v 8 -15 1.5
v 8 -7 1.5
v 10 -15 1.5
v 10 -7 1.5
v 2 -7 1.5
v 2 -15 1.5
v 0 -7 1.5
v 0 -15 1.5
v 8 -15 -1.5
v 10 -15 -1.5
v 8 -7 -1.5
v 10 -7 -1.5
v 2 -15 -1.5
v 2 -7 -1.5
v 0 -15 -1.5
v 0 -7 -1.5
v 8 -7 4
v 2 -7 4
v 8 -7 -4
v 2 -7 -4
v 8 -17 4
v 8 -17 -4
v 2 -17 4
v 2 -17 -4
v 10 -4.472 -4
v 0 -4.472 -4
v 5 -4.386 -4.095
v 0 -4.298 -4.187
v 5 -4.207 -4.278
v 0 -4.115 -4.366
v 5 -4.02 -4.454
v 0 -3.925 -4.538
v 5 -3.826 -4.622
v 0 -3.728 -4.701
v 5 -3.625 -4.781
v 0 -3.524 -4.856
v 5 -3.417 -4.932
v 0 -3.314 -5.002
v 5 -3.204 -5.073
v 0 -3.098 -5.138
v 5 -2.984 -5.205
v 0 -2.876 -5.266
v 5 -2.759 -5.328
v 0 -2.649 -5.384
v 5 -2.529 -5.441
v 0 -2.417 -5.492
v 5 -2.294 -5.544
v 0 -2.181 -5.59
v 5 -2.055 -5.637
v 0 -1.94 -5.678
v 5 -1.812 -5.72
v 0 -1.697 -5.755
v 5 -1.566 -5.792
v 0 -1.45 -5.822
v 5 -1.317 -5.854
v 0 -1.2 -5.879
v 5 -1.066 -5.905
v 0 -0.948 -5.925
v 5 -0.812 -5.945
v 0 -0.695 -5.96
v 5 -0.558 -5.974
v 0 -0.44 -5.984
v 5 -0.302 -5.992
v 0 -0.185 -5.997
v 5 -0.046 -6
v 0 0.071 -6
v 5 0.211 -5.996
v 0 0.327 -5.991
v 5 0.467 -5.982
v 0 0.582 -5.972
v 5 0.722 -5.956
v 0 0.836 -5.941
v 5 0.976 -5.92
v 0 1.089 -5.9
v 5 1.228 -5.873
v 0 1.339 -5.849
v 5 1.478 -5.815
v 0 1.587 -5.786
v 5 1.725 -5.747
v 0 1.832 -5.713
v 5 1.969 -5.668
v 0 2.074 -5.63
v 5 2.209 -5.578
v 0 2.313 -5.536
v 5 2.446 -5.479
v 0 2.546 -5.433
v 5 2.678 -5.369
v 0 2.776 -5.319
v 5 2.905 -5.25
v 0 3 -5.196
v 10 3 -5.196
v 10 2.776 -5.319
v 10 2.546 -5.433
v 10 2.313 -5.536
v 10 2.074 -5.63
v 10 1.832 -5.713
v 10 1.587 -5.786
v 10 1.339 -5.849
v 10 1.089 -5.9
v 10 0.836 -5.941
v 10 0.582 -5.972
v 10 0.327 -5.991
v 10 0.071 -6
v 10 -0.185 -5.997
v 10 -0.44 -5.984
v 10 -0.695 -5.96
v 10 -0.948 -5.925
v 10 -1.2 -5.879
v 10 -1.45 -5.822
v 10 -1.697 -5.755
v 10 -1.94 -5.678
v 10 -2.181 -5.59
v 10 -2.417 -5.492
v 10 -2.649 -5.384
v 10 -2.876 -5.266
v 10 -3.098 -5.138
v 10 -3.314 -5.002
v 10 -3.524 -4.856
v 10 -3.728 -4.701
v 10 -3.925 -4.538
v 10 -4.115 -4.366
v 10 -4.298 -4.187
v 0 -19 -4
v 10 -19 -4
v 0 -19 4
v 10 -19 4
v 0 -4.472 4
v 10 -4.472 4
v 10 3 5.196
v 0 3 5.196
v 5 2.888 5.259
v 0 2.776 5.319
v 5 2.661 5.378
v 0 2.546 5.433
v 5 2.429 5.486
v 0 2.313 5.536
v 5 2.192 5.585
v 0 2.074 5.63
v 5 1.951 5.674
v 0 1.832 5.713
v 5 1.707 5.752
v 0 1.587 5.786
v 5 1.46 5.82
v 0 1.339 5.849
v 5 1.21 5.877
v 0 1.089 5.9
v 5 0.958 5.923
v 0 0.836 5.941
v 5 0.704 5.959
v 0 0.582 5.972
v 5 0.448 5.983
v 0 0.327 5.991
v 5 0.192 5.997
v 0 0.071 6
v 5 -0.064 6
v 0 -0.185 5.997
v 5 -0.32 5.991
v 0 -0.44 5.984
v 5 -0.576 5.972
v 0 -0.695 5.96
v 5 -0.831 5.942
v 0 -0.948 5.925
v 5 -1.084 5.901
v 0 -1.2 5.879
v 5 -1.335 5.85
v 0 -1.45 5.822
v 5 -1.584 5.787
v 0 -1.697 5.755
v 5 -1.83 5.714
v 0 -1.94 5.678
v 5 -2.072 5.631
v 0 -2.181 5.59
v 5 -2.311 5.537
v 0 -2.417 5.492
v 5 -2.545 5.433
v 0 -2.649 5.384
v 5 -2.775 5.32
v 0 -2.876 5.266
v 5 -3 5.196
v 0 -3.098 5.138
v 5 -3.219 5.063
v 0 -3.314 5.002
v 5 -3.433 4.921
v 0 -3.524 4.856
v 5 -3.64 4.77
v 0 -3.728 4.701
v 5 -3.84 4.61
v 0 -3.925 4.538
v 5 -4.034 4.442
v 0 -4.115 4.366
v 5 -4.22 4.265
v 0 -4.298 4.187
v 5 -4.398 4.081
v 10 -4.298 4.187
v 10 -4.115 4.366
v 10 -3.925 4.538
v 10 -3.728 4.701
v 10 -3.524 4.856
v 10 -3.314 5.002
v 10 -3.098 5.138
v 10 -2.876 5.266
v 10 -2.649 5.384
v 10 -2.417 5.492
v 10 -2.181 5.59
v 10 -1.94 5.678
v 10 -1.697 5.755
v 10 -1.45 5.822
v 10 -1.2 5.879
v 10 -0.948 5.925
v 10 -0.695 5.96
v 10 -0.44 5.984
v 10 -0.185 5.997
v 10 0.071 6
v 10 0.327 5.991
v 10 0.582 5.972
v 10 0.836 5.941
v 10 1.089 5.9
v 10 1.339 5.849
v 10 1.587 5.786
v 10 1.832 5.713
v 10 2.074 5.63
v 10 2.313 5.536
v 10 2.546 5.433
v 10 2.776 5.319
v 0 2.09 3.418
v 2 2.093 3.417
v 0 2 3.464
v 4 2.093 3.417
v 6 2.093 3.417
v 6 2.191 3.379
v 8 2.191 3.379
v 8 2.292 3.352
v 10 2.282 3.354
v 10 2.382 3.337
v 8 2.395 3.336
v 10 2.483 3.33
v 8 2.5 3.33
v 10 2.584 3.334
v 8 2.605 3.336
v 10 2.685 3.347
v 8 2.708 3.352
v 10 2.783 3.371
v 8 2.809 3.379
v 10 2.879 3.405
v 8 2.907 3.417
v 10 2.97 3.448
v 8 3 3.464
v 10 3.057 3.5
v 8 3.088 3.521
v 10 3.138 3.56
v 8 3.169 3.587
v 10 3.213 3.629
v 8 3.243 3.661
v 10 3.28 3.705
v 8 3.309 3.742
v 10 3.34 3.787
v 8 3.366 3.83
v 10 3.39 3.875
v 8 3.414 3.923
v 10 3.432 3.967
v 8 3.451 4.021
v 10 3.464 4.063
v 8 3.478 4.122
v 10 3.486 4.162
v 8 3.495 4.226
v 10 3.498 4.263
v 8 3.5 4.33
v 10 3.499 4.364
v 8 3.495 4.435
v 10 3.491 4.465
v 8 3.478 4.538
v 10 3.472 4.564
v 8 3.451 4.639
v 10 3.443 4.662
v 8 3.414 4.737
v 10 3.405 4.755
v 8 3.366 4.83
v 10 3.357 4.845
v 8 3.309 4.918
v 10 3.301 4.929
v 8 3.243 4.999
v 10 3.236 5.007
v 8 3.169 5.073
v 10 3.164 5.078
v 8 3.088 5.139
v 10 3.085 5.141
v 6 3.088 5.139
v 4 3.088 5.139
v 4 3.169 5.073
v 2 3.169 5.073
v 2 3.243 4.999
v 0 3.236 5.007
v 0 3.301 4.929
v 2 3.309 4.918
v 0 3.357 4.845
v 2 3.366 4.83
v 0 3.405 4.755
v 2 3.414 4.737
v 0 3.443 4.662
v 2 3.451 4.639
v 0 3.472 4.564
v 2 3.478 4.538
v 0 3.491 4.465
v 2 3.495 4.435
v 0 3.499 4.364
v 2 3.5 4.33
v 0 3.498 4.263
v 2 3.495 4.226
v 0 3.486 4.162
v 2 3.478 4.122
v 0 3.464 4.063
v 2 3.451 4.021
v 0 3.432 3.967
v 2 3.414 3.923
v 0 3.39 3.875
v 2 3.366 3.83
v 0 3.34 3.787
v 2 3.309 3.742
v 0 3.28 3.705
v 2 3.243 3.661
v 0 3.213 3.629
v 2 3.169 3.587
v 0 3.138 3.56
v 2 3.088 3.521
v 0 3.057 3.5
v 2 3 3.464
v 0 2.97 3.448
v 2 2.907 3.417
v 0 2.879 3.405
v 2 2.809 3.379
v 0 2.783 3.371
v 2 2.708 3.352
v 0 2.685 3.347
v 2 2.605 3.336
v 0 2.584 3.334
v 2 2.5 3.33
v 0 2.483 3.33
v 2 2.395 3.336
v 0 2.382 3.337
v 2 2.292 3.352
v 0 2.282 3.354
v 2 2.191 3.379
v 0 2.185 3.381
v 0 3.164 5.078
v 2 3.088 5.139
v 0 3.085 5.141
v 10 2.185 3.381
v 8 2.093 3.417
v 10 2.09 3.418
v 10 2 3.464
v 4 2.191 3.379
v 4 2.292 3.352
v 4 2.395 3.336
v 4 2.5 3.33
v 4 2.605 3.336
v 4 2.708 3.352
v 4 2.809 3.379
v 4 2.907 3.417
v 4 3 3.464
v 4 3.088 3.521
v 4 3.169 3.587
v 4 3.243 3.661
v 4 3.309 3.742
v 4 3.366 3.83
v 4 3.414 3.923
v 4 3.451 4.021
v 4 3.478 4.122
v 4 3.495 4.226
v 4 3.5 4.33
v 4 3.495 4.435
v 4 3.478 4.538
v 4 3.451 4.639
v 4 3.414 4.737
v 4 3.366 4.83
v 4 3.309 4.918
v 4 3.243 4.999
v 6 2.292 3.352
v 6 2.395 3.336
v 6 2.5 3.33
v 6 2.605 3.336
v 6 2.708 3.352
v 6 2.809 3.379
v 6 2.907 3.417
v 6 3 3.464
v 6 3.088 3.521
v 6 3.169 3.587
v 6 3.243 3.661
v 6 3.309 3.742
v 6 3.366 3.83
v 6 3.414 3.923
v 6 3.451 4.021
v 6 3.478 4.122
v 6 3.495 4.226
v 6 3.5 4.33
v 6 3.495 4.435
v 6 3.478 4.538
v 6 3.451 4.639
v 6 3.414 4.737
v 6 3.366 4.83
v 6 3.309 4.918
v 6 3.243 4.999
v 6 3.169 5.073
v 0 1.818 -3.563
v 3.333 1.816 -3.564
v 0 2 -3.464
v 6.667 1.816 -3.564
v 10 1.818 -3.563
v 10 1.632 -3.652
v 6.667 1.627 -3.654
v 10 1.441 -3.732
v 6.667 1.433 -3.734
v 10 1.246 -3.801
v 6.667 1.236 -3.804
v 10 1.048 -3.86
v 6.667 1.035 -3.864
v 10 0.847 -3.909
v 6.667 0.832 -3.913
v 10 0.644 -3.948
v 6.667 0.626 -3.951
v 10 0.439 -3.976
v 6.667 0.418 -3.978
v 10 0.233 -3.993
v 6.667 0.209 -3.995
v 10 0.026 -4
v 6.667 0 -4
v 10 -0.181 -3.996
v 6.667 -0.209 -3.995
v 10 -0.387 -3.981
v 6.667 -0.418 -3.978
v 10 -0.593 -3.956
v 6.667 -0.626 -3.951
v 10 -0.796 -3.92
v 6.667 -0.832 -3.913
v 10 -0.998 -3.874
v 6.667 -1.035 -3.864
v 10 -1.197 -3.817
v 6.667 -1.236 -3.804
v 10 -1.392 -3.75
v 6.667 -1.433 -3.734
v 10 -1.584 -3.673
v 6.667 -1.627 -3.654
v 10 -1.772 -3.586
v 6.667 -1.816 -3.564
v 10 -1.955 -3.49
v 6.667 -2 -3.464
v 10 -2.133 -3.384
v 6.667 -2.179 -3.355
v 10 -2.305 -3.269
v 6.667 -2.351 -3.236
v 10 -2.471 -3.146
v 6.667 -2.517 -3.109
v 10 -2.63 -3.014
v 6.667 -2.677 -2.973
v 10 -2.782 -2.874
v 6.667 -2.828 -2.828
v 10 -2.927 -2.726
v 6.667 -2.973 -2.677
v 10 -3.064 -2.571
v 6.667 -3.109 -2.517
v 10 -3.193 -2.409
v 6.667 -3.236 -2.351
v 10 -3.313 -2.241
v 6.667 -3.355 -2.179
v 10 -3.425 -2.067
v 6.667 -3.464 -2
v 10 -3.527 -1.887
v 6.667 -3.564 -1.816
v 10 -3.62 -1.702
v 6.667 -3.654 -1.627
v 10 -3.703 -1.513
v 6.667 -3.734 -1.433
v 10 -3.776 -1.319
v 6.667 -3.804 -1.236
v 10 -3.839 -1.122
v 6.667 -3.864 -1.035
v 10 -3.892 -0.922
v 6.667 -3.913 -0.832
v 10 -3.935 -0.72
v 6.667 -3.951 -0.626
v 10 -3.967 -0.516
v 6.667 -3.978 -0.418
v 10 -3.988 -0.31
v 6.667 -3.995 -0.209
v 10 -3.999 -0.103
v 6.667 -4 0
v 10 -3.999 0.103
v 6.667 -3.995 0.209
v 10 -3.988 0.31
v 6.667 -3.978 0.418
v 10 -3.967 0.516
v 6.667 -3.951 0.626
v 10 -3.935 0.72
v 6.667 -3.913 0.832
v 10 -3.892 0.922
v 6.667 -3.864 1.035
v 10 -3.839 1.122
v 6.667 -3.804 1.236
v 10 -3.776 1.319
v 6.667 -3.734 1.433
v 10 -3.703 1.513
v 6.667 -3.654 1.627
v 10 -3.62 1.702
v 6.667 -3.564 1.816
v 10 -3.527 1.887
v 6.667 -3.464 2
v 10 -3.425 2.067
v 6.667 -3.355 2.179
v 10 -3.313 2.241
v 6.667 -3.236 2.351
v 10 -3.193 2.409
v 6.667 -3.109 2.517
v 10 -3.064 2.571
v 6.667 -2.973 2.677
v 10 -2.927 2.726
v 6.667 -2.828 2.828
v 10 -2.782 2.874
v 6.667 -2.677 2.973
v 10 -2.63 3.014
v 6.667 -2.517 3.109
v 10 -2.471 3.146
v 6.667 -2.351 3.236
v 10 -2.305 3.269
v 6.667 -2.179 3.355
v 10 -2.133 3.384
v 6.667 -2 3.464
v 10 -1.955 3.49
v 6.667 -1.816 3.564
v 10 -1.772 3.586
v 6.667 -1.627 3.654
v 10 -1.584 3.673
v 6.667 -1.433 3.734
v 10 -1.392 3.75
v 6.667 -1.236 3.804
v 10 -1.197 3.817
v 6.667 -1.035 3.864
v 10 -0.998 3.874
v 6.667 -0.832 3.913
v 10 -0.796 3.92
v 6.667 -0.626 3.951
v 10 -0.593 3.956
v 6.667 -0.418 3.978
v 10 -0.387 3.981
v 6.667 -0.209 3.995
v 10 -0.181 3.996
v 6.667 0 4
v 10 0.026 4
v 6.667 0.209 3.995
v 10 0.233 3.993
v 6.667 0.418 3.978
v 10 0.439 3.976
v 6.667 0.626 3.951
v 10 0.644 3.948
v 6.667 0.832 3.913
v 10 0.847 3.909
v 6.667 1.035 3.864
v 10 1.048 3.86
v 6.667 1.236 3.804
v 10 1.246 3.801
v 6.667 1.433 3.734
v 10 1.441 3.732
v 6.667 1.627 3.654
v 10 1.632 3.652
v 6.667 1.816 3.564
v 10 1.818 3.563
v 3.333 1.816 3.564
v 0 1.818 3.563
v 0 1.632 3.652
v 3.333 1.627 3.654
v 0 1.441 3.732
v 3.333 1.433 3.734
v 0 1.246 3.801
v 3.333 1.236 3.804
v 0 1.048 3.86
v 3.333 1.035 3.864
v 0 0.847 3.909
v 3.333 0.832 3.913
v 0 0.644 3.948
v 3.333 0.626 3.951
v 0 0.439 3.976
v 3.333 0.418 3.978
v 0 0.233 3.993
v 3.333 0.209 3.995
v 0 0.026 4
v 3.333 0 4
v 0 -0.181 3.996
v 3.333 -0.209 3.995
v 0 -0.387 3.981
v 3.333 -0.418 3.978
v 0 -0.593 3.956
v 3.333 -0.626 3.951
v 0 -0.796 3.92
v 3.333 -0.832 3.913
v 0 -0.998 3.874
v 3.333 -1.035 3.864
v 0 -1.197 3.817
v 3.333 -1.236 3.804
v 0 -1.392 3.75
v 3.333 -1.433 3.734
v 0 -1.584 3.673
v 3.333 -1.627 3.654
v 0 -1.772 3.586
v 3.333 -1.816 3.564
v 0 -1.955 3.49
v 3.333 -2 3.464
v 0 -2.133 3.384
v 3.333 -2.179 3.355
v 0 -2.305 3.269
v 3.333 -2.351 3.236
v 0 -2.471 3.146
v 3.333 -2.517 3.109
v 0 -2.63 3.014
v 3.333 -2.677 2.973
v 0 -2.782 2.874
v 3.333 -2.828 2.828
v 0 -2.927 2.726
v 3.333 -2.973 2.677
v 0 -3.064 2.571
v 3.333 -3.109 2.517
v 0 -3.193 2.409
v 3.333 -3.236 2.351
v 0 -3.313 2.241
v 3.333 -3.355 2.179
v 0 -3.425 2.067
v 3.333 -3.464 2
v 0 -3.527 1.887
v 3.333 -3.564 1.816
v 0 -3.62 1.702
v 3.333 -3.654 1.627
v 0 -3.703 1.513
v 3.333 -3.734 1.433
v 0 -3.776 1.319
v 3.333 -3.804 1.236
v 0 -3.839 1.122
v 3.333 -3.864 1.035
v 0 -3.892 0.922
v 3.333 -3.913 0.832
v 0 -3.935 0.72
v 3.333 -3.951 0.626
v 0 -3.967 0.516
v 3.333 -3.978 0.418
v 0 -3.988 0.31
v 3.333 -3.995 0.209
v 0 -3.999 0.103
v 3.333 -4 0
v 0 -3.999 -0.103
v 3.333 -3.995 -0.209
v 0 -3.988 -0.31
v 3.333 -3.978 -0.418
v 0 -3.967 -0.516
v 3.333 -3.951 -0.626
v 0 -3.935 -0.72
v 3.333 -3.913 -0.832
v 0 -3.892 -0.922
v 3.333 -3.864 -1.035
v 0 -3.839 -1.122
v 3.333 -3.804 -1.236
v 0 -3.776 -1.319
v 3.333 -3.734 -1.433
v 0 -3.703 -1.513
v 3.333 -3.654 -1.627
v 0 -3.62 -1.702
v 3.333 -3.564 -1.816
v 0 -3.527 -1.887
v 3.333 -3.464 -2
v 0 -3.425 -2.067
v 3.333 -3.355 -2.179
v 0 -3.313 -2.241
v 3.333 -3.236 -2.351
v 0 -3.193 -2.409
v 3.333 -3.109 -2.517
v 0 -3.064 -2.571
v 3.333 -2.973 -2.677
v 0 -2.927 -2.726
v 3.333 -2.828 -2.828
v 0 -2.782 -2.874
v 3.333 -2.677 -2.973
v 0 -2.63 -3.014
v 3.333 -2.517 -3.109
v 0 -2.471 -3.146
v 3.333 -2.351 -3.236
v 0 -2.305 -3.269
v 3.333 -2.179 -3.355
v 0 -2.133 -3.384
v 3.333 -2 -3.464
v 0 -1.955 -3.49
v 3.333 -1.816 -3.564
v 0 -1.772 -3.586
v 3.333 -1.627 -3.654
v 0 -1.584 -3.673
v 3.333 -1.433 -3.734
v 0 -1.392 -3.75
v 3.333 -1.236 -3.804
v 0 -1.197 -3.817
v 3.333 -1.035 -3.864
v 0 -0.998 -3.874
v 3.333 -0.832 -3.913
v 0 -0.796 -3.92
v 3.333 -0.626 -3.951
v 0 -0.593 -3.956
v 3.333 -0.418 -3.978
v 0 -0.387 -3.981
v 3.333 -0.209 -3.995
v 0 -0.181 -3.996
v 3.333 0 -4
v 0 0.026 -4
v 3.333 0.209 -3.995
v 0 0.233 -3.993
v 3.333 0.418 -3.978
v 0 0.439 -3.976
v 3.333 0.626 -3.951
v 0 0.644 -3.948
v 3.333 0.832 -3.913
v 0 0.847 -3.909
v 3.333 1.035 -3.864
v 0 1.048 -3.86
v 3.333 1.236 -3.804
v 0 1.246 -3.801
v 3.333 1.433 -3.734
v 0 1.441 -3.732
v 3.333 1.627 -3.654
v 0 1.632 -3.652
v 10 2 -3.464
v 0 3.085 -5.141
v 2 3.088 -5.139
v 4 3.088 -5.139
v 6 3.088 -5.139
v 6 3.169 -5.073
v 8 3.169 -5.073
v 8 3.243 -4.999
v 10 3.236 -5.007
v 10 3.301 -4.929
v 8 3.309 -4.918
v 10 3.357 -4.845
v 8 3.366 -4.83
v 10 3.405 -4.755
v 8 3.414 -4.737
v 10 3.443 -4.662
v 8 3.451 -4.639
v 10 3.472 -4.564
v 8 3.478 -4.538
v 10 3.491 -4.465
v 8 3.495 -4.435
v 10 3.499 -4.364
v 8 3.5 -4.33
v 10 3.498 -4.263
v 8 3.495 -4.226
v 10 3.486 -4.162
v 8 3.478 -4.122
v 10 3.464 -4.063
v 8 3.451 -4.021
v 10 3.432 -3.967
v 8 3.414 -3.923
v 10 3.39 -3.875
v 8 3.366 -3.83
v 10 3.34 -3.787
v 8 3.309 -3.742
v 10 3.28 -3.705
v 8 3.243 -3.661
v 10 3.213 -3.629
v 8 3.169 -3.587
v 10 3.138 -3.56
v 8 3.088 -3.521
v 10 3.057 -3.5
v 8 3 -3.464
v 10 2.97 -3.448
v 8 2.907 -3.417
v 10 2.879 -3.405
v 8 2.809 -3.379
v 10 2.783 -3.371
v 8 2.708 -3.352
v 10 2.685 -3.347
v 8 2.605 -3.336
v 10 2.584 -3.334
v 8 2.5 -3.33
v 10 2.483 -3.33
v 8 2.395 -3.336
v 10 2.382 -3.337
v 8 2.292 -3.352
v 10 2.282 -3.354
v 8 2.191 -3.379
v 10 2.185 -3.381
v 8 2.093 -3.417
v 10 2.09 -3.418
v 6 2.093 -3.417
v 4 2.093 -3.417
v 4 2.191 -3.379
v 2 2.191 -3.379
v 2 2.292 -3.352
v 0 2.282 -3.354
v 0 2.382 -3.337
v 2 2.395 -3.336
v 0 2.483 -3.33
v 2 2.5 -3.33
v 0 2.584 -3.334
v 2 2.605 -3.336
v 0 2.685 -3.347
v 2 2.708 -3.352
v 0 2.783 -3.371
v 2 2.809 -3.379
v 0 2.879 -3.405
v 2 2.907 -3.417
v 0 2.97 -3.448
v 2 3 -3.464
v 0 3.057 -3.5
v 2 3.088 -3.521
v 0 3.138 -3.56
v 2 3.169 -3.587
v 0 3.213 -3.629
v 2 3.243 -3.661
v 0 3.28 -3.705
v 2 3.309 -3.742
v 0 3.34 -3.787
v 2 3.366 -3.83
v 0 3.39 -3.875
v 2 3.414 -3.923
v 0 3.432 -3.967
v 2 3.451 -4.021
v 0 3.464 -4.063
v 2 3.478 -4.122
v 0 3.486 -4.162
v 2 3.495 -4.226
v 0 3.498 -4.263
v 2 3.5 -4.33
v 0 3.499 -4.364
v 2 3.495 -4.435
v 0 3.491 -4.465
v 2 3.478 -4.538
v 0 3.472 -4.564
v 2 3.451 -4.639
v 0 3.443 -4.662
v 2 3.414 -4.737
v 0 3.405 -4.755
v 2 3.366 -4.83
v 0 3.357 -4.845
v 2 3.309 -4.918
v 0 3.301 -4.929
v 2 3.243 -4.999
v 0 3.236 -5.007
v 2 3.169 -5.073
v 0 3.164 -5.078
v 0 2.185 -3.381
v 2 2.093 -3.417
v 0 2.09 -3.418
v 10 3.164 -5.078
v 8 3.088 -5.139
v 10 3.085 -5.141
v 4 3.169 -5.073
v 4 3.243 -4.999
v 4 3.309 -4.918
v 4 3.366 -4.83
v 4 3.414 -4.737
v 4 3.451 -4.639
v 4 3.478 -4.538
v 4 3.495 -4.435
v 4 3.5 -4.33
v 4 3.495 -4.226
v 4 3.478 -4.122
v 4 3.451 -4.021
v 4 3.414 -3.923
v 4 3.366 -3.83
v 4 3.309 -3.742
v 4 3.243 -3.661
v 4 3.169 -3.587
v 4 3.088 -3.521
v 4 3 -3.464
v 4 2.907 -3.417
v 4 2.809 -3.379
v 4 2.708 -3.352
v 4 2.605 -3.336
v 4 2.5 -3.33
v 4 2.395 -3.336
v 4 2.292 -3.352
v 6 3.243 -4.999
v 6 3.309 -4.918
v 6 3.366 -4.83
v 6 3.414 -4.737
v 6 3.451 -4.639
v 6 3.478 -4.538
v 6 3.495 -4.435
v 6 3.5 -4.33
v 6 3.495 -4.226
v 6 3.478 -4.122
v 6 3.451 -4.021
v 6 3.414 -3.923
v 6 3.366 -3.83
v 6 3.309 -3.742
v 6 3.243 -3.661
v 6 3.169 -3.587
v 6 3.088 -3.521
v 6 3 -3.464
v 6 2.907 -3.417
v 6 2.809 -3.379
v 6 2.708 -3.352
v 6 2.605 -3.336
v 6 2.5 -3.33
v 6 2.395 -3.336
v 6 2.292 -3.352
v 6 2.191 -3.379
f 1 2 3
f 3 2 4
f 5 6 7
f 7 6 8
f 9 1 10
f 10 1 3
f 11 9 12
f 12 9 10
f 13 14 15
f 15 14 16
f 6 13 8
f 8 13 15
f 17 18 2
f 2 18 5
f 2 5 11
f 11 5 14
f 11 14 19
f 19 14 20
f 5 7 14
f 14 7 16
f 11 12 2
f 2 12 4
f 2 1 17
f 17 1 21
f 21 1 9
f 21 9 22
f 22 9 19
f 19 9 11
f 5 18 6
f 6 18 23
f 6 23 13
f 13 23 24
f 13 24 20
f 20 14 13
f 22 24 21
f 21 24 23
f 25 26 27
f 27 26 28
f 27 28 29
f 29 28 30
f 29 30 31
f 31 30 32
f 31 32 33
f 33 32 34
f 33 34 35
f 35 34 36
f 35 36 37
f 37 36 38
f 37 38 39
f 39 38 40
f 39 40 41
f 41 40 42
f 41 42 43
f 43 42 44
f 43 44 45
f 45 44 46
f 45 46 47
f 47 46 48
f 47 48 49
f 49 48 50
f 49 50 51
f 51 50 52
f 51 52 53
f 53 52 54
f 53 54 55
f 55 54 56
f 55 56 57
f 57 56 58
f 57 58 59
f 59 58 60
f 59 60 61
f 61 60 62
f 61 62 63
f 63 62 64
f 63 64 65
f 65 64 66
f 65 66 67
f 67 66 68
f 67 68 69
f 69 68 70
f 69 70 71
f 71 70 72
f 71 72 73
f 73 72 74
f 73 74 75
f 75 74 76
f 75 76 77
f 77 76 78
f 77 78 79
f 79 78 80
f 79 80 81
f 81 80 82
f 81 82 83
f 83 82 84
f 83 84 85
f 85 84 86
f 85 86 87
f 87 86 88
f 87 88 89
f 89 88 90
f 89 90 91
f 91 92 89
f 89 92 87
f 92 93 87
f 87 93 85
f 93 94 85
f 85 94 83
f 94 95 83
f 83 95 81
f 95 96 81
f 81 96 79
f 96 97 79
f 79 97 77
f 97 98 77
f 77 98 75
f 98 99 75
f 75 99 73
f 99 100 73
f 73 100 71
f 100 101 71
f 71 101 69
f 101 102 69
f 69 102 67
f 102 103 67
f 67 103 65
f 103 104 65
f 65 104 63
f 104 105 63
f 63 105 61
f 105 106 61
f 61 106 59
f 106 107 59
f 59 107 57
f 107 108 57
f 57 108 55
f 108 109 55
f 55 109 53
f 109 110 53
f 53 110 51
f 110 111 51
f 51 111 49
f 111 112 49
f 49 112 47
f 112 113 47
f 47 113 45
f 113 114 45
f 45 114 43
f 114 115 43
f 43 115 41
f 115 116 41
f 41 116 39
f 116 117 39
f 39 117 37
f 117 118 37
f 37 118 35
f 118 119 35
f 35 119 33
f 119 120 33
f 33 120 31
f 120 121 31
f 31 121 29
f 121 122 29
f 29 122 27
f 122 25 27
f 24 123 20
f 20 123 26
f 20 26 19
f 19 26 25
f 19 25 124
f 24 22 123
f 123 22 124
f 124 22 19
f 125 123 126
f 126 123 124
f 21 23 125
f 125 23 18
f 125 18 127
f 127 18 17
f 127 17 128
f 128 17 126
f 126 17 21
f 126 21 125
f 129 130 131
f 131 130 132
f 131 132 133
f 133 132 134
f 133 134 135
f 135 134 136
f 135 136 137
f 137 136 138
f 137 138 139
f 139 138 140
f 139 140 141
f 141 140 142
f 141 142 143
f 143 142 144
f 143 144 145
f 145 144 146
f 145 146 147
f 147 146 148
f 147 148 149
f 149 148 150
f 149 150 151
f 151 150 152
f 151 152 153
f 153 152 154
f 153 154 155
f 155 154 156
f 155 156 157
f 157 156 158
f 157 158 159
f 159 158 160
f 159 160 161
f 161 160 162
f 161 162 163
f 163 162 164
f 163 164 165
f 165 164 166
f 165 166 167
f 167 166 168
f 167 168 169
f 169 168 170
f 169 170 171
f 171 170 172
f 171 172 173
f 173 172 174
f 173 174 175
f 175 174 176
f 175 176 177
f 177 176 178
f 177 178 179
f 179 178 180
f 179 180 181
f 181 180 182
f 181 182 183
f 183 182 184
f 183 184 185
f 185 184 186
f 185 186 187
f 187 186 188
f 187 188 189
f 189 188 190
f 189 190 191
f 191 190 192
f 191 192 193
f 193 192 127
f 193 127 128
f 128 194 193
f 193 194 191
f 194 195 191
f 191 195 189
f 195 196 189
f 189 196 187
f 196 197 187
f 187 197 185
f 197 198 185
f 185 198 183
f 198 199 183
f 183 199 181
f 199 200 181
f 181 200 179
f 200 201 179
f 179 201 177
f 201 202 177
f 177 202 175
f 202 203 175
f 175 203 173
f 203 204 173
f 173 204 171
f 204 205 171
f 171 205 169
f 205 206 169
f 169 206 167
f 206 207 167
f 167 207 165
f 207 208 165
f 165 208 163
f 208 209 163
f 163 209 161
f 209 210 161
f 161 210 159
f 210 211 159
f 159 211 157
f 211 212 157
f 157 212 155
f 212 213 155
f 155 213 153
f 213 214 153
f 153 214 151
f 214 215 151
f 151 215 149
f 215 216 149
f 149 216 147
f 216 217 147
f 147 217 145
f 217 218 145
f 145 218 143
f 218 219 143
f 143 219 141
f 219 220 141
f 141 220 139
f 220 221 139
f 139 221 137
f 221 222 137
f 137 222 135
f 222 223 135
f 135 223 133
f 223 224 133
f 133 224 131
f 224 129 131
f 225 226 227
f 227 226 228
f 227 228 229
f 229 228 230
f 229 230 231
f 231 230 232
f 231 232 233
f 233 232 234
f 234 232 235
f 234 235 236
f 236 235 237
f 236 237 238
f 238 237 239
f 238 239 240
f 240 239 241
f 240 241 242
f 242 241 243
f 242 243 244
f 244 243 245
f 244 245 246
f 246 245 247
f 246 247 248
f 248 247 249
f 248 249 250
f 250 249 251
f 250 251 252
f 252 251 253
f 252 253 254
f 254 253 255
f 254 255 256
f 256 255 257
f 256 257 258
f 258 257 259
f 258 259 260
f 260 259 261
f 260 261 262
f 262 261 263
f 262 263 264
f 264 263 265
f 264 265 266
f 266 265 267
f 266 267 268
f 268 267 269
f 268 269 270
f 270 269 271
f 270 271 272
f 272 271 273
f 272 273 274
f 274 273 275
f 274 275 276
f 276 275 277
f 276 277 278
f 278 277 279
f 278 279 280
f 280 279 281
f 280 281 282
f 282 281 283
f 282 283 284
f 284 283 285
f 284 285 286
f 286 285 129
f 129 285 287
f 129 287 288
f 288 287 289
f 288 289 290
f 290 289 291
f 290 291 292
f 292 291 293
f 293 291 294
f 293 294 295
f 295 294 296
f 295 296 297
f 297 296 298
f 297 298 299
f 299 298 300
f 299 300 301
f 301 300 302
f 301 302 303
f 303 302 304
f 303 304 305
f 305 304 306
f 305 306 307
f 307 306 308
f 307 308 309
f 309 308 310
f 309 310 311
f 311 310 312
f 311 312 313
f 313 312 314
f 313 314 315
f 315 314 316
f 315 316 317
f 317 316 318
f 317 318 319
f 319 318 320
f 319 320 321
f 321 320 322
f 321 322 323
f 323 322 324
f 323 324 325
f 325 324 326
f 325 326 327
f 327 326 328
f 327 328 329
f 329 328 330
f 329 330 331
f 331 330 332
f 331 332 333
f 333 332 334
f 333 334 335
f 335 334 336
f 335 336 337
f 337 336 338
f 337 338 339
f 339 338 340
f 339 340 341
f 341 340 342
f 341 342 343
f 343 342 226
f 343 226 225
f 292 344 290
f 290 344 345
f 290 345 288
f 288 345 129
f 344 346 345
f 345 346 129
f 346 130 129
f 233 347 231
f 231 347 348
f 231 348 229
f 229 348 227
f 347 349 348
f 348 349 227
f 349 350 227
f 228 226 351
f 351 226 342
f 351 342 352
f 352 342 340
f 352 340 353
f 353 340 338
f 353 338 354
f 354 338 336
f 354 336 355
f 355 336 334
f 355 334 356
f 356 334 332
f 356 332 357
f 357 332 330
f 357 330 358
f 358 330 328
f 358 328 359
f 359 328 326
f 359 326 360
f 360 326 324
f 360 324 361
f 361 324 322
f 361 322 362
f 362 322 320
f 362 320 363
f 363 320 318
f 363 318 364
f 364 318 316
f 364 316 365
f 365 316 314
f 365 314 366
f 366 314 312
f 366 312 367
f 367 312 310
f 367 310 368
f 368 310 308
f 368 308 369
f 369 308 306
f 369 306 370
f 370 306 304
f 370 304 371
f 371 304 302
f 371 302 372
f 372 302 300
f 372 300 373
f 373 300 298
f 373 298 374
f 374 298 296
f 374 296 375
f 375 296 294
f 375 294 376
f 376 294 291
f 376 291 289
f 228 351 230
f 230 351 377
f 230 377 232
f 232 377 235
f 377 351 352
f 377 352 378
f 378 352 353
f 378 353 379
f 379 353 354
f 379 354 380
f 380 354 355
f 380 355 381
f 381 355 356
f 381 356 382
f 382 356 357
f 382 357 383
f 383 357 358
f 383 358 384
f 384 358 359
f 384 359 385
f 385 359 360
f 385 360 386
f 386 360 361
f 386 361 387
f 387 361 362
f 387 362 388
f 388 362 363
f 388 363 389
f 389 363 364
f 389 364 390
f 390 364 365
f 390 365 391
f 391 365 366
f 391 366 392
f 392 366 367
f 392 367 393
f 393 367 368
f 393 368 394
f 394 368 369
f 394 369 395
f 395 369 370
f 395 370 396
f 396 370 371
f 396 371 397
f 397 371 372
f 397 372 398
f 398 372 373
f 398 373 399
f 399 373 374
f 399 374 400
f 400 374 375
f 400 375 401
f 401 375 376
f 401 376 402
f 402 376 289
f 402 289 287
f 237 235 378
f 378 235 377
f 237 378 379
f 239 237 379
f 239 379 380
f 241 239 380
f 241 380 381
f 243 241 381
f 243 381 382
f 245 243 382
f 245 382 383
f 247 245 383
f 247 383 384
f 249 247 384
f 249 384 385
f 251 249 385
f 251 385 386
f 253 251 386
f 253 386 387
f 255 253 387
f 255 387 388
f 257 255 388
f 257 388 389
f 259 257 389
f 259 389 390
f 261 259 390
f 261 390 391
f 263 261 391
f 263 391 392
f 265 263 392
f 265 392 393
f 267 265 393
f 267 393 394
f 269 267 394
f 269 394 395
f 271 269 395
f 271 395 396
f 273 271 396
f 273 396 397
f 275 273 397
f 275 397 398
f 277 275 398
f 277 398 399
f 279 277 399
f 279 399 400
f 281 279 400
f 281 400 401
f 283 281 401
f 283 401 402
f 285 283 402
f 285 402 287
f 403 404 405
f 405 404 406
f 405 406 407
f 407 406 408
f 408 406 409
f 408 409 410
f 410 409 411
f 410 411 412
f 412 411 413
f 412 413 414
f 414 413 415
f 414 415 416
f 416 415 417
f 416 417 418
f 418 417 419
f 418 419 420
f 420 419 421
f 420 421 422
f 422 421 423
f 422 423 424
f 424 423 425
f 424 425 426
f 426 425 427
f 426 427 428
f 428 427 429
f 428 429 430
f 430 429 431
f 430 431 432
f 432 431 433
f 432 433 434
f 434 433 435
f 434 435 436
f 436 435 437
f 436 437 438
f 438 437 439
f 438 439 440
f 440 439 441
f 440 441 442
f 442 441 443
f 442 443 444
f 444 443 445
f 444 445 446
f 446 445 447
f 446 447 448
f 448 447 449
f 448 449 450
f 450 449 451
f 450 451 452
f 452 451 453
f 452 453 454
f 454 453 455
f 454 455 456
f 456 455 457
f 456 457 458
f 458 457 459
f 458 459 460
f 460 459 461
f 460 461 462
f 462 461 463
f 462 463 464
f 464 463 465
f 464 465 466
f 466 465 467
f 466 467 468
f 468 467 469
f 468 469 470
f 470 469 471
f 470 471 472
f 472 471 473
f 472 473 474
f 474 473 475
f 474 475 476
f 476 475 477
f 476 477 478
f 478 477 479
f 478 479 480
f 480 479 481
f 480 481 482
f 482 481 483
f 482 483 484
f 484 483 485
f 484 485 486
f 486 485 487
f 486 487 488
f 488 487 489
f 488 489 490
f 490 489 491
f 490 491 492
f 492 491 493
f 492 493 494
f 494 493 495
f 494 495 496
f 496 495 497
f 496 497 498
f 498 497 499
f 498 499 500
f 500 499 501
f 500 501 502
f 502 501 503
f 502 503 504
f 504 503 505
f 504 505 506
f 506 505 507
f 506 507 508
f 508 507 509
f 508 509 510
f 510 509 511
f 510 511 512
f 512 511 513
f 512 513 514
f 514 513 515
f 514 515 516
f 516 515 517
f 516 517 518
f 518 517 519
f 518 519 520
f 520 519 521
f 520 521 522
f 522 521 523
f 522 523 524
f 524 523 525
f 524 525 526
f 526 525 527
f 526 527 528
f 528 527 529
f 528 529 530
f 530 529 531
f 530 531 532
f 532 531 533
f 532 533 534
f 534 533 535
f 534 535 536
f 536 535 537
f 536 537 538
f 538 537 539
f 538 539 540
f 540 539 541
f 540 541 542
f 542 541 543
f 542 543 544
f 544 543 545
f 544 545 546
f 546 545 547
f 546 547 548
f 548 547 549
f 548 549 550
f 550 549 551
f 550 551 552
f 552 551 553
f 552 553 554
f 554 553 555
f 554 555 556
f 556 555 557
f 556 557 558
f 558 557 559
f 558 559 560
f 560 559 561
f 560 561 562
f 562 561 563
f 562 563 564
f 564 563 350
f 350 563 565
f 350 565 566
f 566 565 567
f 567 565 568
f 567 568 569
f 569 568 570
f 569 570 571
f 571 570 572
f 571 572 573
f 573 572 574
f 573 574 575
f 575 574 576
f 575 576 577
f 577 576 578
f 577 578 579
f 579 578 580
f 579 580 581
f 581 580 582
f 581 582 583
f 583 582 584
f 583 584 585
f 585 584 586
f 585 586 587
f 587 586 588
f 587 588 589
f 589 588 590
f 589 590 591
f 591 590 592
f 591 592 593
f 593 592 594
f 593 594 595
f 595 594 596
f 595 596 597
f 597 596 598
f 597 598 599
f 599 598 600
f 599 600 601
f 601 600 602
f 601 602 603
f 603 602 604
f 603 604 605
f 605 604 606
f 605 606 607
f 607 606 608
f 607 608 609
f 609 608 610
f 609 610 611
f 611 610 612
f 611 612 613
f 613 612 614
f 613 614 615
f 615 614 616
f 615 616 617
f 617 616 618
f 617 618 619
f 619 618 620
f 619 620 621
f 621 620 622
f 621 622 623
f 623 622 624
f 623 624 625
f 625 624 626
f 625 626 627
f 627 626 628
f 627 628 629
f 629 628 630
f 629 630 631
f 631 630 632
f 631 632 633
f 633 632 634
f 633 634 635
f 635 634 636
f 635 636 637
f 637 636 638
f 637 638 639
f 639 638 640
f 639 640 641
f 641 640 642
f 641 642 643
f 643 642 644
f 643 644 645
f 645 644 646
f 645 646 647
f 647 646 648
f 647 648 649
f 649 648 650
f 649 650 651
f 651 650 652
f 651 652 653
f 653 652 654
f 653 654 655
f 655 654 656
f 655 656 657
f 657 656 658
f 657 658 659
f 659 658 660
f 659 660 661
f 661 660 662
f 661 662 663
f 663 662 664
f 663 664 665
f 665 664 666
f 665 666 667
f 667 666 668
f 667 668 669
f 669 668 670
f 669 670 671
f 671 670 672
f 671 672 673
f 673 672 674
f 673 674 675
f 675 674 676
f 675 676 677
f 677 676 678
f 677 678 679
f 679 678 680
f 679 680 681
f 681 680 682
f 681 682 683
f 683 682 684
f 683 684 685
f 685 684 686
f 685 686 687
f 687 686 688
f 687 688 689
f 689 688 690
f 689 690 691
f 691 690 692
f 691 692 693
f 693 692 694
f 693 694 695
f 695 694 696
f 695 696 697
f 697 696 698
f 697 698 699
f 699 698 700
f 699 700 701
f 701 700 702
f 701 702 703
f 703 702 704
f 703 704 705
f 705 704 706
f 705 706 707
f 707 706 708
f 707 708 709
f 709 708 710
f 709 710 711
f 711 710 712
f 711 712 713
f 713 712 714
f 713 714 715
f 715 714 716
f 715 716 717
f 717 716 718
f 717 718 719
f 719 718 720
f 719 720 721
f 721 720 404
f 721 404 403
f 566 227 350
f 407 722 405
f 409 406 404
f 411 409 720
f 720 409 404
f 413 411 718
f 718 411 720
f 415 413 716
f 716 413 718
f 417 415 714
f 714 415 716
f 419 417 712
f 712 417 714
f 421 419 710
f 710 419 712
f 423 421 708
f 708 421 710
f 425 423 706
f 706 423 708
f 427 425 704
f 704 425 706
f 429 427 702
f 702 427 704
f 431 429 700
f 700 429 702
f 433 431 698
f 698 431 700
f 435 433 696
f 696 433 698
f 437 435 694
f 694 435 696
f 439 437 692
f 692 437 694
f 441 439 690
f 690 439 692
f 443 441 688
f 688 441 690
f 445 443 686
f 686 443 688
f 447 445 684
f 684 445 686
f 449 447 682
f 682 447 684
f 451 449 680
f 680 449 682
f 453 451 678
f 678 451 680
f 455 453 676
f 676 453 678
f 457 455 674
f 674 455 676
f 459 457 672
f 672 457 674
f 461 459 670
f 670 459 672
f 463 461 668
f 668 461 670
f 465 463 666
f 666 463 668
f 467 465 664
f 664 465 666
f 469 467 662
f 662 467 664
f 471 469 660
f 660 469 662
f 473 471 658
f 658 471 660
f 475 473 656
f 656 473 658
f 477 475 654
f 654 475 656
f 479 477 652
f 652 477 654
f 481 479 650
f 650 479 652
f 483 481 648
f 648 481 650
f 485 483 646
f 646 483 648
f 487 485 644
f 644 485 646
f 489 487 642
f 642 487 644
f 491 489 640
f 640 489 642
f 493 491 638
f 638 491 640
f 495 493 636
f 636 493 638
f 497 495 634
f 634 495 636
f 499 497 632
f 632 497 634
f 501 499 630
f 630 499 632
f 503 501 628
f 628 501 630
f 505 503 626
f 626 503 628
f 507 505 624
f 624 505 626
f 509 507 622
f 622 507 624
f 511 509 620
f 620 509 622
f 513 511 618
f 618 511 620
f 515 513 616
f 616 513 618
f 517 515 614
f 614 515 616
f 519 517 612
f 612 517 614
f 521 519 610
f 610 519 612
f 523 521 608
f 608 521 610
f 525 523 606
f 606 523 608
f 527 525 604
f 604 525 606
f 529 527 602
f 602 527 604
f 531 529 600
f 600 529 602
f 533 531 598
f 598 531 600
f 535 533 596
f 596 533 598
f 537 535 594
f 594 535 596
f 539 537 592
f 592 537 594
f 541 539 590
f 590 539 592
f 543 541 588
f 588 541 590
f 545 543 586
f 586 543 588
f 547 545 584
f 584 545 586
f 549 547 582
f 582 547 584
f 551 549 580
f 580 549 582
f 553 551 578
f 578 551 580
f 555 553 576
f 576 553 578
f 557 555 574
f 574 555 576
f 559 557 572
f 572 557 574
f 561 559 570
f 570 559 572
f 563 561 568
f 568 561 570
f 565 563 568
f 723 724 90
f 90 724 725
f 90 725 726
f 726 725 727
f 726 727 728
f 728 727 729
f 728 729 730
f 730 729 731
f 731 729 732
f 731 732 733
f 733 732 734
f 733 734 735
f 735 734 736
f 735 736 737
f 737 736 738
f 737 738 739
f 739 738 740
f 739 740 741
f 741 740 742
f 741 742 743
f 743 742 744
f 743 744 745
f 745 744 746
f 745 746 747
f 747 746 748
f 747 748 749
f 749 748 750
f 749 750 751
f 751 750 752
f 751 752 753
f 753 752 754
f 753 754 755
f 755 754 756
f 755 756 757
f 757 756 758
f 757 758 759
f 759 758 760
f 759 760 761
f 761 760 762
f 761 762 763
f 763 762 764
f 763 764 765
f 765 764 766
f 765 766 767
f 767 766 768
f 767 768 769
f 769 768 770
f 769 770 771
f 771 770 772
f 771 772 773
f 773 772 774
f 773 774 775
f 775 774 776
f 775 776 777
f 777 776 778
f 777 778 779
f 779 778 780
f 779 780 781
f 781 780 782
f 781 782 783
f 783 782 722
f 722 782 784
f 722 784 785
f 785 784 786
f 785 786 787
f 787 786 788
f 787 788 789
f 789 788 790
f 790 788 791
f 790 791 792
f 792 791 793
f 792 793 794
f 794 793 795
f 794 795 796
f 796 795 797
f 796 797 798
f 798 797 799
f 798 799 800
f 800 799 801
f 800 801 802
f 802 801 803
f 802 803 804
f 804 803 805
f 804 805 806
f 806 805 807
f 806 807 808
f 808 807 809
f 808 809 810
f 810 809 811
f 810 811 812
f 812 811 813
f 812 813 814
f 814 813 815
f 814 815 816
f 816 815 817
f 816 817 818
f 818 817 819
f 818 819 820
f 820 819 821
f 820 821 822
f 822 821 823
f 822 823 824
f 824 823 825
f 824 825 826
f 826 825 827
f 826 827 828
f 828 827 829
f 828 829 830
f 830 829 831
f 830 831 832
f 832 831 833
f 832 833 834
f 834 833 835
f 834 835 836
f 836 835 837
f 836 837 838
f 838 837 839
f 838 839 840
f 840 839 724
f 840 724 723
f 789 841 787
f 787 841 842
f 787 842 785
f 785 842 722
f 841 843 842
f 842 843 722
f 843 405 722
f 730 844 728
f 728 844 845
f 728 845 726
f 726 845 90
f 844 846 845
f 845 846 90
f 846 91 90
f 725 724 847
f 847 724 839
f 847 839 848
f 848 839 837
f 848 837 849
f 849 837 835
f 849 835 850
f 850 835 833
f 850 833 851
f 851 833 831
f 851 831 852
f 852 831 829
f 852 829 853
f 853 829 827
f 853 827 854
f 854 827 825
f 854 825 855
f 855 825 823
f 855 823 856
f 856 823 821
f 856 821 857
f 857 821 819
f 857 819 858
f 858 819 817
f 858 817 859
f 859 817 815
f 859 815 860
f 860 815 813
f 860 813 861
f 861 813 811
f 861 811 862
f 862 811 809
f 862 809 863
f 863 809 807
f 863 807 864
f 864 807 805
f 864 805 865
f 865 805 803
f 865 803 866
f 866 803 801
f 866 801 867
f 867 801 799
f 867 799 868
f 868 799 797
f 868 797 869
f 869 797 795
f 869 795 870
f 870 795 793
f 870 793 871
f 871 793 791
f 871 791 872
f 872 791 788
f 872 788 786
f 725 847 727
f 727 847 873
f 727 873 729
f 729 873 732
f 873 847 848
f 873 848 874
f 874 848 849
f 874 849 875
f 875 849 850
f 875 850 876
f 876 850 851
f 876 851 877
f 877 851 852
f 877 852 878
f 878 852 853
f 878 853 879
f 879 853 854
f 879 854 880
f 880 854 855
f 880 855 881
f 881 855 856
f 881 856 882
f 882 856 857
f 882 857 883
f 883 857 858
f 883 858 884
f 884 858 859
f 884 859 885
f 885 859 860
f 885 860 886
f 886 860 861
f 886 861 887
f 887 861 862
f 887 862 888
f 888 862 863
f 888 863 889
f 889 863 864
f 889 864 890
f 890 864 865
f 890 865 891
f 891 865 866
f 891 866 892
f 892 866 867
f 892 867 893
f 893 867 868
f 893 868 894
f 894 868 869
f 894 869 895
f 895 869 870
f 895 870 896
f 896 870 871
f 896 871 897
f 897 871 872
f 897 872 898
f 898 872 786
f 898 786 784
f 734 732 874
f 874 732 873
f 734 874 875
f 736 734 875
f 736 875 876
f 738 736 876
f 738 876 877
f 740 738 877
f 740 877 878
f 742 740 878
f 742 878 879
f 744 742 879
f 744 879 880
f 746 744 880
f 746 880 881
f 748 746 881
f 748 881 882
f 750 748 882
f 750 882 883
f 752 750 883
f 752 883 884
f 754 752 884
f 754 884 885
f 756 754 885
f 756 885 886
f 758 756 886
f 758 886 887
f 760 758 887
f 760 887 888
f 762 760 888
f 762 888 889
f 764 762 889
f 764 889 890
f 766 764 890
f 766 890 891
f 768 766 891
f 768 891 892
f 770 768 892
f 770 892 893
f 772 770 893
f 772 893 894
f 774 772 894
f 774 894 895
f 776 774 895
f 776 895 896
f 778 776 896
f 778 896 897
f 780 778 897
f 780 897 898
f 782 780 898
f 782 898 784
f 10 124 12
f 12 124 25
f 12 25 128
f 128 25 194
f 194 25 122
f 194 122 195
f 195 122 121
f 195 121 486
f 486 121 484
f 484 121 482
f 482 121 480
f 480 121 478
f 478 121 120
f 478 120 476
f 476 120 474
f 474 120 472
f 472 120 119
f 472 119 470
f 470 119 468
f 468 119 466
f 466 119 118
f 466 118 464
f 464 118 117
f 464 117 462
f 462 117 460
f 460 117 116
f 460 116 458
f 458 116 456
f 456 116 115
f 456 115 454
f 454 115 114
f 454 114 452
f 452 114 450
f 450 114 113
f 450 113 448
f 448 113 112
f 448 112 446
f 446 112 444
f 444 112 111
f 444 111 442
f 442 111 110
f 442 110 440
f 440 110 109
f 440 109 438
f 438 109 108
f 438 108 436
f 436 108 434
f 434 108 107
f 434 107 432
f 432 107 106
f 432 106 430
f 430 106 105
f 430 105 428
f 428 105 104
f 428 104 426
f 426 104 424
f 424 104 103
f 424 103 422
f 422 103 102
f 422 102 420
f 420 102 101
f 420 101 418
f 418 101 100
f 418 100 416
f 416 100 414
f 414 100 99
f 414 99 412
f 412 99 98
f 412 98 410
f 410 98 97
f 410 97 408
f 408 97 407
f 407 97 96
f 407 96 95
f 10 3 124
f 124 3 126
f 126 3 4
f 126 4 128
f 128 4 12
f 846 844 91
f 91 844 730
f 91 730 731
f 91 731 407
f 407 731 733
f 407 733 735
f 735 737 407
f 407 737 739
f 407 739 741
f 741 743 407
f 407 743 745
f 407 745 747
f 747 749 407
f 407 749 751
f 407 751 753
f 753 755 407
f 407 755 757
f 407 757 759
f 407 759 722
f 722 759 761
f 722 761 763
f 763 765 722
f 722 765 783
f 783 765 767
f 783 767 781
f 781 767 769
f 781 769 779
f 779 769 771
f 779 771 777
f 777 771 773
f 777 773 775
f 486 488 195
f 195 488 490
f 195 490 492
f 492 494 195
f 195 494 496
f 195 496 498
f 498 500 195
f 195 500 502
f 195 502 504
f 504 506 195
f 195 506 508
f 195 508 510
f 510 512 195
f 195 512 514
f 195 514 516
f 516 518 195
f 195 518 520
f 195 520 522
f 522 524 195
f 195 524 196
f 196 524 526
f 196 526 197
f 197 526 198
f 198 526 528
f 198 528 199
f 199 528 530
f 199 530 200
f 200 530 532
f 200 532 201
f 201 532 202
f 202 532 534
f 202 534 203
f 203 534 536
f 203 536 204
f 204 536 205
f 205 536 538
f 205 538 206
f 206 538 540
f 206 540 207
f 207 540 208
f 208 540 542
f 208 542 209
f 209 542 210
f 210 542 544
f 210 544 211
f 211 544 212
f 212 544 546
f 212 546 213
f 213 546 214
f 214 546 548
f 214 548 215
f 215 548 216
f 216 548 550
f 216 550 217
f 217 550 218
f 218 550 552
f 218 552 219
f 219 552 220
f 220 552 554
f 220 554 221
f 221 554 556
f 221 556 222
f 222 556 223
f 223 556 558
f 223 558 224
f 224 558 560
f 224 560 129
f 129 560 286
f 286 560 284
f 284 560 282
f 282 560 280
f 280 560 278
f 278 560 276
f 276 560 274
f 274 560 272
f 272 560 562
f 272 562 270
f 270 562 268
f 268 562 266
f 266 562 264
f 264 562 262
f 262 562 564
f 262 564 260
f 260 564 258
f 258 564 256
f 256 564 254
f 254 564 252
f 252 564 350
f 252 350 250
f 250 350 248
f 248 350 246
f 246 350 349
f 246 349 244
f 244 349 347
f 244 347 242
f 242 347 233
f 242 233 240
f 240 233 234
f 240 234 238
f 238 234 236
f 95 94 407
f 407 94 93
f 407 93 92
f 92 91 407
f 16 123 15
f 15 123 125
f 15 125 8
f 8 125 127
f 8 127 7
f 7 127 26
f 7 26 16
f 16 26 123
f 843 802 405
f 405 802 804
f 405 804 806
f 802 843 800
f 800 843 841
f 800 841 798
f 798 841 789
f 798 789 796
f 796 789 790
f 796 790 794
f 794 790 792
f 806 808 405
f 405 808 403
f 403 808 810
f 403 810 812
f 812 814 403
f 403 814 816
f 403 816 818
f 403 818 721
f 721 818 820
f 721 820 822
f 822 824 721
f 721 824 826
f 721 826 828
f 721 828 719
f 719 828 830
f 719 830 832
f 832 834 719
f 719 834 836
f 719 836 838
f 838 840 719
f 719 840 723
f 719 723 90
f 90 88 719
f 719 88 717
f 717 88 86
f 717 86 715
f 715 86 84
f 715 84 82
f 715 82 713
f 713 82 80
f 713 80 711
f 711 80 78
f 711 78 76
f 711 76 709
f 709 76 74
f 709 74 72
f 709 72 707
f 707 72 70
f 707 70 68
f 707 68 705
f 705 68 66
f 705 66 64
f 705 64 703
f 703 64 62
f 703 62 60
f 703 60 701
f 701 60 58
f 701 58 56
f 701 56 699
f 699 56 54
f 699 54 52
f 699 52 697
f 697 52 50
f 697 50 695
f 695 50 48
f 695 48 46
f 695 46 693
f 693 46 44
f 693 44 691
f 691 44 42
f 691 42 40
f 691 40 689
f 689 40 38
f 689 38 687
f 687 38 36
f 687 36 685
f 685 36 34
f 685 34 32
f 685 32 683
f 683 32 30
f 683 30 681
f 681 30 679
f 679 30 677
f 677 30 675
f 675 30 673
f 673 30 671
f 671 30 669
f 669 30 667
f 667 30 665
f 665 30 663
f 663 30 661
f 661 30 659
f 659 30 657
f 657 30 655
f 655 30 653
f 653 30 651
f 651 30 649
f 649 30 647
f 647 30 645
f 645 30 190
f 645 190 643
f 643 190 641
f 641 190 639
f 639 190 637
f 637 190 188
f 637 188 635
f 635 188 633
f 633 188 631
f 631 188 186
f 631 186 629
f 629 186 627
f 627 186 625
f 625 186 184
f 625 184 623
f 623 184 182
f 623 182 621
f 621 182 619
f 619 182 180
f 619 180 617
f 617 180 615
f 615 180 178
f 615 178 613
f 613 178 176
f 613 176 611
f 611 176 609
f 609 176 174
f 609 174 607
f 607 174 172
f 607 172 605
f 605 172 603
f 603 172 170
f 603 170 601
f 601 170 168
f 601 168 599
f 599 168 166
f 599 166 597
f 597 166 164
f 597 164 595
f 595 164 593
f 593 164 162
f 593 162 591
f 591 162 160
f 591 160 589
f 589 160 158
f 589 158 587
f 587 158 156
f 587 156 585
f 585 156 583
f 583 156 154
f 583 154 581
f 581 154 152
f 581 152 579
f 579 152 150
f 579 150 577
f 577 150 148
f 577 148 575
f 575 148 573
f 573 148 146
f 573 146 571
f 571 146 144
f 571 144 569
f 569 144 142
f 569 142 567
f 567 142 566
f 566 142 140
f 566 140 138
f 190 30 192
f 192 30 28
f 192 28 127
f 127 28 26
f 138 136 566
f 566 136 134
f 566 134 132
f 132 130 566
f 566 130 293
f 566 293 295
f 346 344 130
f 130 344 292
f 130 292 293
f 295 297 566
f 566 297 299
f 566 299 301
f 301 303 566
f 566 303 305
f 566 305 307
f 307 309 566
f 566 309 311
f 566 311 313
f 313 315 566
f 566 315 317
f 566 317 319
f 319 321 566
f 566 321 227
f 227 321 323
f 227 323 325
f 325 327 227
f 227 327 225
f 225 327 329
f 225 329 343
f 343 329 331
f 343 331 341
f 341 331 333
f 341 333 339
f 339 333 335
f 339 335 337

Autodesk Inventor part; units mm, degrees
ref_plane "YZ Plane" through (0, 0, 0) normal (1, 0, 0) x (0, 1, 0)
ref_plane "XZ Plane" through (0, 0, 0) normal (0, 1, 0) x (-1, 0, 0)
ref_plane "XY Plane" through (0, 0, 0) normal (0, 0, 1) x (1, 0, 0)
sketch "Sketch1" plane through (0, 0, 0) normal (1, 0, 0) x (0, 1, 0)
  arc A0 (2, 3.4641) -> (2, -3.4641) centre (0, 0) ccw
  arc A1 (2, 3.4641) -> (3, 5.1962) centre (2.5, 4.3301) ccw
  arc A2 (3, -5.1962) -> (2, -3.4641) centre (2.5, -4.3301) ccw
  line L0 (-4.4721, 4) -> (-19, 4)
  line L1 (-19, 4) -> (-19, -4)
  line L2 (-19, -4) -> (-4.4721, -4)
  arc A3 (3, 5.1962) -> (-4.4721, 4) centre (0, 0) ccw
  arc A4 (-4.4721, -4) -> (3, -5.1962) centre (0, 0) ccw
  point P0 (-6, 0)
  point P1 (-19, 0)
  dimension "d0" = 8
  dimension "d2" = 2.5
  dimension "d3" = 8
  dimension "d6" = 19
  dimension "d7" = 6
  dimension "d8" = 6
extrude "Extrusion1" add sketch "Sketch1" along normal blind 10
sketch "Sketch2" plane through (0, -19, 4) normal (0, 0, 1) x (1, 0, 0)
  line L0 (2, 12) -> (8, 12)
  line L1 (8, 12) -> (8, 2)
  line L2 (8, 2) -> (2, 2)
  line L3 (2, 2) -> (2, 12)
  line L4 (0, 0) -> (10, 0) projected
  line L5 (10, 14.5279) -> (10, 0) projected
  point P0 (0, 19)
  dimension "d11" = 2
  dimension "d12" = 6
  dimension "d13" = 10
  dimension "d14" = 2
extrude "Extrusion2" cut sketch "Sketch2" against normal blind 10
sketch "Sketch3" plane through (0, 0, 0) normal (-1, 0, 0) x (0, 0, 1)
  line L0 (-1.5, -7) -> (1.5, -7)
  line L1 (1.5, -7) -> (1.5, -15)
  line L2 (1.5, -15) -> (-1.5, -15)
  line L3 (-1.5, -15) -> (-1.5, -7)
  line L4 (4, -7) -> (-4, -7) projected
  line L5 (4, -17) -> (-4, -17) projected
  line L6 (4, -4.4721) -> (4, -19) projected
  point P0 (0, 0)
  point P1 (0, -7)
  point P2 (0, -7)
  dimension "d17" = 3
  dimension "d18" = 2
  dimension "d19" = 2.5
extrude "Extrusion3" cut sketch "Sketch3" against normal blind 10
properties part number "Thread_Clip"
